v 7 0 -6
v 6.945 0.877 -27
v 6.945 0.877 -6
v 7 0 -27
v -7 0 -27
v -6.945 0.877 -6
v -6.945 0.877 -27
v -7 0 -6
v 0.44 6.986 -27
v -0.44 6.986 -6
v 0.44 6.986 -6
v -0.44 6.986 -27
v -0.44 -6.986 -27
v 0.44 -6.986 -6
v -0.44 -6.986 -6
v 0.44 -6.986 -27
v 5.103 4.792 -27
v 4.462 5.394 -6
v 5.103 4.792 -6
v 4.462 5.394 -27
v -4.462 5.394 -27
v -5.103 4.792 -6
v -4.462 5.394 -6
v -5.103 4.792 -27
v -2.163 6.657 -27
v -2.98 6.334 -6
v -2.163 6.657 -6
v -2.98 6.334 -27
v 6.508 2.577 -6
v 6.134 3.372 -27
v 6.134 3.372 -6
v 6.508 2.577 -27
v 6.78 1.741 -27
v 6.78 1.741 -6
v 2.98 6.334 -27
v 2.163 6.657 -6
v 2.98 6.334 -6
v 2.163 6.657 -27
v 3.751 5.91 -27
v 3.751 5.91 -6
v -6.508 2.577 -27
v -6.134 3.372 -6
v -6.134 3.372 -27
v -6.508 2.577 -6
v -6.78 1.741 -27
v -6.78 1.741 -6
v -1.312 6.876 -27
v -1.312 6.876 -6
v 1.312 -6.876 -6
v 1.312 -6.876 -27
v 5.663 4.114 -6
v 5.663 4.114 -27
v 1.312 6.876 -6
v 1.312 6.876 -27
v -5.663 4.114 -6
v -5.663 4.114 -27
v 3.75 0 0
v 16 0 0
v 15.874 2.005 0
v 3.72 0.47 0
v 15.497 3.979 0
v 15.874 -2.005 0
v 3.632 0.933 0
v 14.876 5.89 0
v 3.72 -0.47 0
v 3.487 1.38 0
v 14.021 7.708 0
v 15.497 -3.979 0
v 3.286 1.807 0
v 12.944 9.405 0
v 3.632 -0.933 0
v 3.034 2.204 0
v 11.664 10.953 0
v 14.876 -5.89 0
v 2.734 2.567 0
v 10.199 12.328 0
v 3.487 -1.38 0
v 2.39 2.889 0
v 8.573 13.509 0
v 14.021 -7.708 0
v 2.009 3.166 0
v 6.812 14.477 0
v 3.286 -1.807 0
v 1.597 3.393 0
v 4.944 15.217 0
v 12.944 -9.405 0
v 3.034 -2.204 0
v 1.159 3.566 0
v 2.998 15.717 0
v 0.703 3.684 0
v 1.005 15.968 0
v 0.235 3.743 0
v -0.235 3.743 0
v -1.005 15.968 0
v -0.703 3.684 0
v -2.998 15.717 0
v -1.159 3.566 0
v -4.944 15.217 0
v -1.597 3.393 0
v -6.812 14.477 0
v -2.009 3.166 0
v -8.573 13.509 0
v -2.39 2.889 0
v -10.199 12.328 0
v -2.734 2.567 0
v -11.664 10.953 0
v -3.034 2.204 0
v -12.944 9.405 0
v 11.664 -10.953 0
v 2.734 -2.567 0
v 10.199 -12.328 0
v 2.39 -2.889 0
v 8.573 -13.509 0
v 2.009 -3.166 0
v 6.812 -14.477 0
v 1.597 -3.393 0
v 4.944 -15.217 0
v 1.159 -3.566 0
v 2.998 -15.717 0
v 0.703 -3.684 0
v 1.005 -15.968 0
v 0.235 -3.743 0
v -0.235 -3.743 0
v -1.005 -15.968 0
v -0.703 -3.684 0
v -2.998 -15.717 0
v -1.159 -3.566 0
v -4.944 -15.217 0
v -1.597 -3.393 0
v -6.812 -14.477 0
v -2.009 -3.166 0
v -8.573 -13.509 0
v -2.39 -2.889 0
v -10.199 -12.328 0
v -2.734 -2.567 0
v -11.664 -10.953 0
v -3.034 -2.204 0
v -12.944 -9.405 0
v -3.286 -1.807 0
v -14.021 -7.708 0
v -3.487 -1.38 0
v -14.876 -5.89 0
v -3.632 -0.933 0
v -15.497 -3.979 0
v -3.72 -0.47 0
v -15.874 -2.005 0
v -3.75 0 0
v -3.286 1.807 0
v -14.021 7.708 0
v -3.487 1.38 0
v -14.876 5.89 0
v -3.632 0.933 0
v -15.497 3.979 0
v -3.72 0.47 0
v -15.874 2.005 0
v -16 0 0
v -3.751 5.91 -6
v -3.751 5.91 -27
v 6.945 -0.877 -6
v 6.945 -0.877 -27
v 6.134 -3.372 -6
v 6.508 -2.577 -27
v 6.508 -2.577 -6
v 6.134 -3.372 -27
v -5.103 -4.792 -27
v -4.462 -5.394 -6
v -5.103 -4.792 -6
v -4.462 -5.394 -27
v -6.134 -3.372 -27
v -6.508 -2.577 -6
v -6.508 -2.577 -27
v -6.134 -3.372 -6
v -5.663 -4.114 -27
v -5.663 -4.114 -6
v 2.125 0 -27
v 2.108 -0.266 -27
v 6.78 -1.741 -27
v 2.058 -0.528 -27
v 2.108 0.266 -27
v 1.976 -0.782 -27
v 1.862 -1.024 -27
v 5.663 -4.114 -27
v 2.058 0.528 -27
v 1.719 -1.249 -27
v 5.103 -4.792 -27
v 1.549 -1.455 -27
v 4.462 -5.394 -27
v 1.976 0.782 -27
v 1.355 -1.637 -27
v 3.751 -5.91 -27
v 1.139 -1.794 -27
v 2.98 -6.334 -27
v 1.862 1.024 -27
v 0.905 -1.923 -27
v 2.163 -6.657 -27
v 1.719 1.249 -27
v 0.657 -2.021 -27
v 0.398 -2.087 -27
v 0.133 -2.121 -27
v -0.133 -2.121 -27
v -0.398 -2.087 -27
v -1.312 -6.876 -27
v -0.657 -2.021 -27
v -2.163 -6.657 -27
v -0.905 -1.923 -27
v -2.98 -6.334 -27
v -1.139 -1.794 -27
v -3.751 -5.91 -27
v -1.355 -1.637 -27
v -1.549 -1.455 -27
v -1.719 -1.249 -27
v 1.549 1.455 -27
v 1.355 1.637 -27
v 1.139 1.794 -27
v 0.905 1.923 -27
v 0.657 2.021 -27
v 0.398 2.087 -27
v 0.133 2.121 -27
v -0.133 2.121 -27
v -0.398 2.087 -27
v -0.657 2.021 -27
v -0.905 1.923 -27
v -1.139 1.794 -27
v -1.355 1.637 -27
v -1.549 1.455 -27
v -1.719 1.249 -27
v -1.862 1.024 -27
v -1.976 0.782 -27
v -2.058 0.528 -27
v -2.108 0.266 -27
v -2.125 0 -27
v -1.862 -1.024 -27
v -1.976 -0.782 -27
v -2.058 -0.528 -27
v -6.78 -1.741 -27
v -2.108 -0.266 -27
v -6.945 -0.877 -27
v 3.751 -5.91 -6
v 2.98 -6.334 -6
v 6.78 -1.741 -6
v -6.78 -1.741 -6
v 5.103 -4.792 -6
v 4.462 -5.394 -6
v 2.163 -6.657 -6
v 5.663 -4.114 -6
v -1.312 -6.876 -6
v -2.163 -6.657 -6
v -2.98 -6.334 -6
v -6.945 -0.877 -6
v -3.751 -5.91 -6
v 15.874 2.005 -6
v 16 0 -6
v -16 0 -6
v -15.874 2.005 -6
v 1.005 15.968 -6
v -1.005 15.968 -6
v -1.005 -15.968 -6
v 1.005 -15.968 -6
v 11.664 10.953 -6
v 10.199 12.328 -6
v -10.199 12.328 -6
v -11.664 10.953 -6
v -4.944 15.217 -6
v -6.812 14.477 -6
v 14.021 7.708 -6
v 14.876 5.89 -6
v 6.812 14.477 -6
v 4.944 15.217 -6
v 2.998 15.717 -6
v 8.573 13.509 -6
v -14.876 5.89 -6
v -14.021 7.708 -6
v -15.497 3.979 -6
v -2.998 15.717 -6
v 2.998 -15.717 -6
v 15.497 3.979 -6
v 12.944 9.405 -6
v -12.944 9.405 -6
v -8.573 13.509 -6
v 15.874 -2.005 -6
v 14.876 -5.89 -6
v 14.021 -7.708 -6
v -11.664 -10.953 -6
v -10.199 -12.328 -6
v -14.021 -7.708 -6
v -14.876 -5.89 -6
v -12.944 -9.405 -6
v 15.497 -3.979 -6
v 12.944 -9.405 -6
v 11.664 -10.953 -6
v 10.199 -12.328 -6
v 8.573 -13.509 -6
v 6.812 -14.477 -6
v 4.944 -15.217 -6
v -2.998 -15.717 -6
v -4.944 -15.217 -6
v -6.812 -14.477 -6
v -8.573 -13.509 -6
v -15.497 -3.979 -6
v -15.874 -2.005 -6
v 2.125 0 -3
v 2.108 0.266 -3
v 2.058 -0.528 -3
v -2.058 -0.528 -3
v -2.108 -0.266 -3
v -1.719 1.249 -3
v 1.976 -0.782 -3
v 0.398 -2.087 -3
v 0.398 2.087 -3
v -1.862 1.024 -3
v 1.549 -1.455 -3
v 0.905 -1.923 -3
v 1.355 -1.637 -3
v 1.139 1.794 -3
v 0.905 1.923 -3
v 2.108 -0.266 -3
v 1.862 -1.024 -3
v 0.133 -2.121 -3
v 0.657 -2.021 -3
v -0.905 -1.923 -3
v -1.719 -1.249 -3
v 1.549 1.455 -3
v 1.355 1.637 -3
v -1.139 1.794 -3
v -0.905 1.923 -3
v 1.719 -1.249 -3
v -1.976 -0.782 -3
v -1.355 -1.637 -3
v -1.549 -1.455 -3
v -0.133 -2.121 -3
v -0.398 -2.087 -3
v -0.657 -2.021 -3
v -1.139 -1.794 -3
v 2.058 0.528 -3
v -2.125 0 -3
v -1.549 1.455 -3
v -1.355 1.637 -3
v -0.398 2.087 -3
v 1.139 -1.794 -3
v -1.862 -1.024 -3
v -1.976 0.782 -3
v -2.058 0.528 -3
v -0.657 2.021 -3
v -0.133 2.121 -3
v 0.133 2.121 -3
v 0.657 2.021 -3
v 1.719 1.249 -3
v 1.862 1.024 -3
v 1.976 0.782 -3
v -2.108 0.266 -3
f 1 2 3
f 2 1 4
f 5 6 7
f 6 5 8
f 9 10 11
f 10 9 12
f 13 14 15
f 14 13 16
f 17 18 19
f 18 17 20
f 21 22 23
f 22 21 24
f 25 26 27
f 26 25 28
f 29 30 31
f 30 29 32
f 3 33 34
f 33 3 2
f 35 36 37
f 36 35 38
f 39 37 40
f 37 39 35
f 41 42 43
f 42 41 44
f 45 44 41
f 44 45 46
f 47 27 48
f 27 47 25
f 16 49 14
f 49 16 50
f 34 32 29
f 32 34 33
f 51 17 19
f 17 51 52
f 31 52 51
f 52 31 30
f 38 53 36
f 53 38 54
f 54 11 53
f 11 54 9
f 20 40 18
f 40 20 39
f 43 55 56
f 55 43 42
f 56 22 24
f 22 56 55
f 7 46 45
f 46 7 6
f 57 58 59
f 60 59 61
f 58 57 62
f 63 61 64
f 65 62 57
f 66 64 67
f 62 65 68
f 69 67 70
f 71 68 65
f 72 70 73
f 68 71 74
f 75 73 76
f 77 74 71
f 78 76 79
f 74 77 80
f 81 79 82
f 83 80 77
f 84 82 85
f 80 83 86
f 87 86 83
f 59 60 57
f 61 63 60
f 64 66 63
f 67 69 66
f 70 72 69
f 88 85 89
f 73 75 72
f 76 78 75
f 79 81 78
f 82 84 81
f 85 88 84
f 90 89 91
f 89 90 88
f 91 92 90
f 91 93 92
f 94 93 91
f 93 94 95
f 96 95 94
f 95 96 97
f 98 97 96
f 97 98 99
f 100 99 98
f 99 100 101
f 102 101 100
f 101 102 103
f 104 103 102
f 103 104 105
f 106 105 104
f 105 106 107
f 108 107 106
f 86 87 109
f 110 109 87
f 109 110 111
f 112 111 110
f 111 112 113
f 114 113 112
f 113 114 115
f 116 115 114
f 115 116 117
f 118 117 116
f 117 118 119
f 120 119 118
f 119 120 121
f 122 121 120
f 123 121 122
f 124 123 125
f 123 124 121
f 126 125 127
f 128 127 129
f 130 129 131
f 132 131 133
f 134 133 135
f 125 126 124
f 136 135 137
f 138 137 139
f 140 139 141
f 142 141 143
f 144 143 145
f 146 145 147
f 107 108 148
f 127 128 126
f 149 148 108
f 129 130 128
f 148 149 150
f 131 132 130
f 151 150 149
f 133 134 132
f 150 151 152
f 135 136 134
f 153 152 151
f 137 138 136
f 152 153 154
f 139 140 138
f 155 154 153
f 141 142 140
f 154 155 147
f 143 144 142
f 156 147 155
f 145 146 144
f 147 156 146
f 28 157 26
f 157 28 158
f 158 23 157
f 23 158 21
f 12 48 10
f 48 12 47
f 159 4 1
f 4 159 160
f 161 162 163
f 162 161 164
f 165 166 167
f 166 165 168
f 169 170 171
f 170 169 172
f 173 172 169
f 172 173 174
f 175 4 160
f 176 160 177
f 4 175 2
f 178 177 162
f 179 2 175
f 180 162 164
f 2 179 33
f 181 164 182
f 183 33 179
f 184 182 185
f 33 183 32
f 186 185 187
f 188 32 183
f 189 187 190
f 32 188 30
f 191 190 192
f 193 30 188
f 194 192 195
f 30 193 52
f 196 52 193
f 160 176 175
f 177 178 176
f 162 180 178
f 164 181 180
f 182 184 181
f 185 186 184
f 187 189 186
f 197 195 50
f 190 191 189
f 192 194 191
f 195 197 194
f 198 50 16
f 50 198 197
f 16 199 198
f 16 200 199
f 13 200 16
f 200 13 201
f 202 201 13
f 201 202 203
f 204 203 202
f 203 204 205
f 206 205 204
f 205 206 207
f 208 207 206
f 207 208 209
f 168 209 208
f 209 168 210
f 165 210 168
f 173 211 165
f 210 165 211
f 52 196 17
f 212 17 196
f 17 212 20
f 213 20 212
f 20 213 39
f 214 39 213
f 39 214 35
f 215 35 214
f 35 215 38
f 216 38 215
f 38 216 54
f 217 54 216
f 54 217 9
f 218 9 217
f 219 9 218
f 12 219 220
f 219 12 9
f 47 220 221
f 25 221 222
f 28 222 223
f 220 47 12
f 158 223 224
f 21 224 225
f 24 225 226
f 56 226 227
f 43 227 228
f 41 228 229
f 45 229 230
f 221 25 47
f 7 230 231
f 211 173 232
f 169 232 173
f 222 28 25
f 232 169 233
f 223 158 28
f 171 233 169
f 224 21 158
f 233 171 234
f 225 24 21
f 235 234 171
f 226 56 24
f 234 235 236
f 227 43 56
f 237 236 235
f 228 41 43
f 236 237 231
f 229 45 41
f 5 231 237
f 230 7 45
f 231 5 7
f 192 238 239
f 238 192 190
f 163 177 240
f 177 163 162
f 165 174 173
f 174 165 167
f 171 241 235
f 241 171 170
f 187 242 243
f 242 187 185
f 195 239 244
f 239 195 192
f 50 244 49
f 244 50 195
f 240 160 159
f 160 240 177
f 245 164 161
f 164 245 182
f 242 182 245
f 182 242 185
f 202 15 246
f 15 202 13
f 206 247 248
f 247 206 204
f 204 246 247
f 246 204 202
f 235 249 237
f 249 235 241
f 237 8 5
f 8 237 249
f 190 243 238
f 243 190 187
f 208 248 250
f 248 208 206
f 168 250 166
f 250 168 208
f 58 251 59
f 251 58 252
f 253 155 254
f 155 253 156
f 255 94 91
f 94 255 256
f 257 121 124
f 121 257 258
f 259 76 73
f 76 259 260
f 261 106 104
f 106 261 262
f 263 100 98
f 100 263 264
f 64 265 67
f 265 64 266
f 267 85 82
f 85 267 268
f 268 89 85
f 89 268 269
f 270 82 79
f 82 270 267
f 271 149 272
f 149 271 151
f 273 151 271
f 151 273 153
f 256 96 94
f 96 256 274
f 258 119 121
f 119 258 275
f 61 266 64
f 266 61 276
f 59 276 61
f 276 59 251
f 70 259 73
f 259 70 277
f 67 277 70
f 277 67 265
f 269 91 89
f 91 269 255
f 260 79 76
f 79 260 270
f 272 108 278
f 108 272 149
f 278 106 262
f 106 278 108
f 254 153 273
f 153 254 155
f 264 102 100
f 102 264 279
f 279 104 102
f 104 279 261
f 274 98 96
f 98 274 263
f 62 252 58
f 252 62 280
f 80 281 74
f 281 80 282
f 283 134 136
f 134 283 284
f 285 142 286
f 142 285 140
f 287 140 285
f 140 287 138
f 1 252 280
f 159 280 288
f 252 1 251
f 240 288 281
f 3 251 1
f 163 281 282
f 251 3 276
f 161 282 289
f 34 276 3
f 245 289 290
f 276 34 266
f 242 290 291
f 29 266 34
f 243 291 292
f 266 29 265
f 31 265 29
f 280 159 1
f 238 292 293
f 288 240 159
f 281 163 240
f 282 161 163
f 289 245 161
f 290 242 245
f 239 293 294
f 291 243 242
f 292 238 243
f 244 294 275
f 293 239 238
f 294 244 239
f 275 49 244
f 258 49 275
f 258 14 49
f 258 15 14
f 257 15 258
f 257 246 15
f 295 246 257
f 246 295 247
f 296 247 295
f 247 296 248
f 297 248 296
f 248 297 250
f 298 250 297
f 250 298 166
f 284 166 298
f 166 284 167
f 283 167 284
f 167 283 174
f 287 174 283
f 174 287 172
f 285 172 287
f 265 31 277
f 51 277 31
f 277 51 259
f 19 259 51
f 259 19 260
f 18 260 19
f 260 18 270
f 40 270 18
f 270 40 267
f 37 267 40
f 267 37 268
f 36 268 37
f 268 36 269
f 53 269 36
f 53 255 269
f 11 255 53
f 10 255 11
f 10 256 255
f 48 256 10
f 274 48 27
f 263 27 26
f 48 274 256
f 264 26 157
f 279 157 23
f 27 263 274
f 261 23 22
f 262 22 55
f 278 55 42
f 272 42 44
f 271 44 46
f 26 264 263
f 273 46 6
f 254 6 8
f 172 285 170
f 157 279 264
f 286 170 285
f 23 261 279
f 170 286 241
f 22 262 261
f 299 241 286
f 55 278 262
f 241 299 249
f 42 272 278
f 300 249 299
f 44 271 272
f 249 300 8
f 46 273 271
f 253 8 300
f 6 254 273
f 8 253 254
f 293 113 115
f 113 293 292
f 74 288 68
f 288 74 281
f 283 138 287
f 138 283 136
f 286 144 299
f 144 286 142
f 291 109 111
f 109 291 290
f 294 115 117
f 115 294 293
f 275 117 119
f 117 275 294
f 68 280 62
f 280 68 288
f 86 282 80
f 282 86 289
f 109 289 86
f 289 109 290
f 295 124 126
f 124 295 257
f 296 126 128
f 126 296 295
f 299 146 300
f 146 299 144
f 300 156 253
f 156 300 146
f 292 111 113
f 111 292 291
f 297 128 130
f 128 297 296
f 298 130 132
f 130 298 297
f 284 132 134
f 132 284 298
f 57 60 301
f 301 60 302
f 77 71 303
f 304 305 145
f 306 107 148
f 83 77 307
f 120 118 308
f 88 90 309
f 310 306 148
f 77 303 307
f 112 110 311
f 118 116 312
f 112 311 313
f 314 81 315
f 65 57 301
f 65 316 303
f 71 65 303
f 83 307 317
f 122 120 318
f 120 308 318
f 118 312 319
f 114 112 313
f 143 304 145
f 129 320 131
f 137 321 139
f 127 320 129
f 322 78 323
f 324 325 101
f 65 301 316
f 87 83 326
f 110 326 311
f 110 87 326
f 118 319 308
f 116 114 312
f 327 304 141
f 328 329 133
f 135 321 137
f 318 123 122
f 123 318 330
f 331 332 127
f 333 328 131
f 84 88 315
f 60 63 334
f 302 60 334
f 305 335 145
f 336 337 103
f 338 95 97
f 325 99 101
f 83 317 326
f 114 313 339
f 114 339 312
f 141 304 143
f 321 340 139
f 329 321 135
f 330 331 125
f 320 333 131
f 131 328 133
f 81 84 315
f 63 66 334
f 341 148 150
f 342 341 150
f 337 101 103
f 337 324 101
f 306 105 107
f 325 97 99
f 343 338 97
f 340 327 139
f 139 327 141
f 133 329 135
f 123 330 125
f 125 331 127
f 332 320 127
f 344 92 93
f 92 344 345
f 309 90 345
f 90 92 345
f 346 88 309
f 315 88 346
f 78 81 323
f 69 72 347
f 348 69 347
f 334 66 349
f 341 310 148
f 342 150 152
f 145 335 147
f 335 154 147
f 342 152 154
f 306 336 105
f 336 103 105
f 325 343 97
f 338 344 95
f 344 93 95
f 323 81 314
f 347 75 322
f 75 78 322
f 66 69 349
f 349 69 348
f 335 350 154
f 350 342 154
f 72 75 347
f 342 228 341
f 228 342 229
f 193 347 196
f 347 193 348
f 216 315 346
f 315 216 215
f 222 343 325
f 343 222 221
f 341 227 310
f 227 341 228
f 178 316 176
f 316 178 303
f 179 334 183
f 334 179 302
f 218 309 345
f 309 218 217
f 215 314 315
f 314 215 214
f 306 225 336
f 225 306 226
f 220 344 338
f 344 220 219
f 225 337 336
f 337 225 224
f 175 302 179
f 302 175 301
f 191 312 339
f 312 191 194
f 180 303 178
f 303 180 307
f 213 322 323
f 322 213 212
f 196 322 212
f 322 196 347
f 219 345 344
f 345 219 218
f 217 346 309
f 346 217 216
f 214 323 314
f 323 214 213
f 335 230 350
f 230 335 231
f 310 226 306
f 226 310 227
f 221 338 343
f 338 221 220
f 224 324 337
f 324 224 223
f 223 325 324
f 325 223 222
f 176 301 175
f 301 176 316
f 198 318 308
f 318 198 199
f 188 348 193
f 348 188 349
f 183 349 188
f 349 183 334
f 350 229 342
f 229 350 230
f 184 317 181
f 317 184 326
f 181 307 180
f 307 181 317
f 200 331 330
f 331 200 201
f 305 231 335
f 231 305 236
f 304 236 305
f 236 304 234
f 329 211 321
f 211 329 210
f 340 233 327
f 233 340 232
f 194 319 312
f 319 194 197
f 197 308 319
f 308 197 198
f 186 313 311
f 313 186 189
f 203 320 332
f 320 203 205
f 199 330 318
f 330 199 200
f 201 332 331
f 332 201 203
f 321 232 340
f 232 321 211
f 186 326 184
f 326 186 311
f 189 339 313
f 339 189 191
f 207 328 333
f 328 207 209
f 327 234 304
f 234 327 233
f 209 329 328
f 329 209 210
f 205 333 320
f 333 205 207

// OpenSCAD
$fn = 50;


difference() {
	union() {
		translate(v = [0, 0, -27.0000000000]) {
			cylinder(h = 27, r = 7.0000000000);
		}
		translate(v = [0, 0, -6.0000000000]) {
			cylinder(h = 6, r = 16.0000000000);
		}
	}
	union() {
		translate(v = [0, 0, 0]) {
			rotate(a = [0, 0, 0]) {
				difference() {
					union() {
						#translate(v = [0, 0, -27.0000000000]) {
							cylinder(h = 27, r = 2.0000000000);
						}
						#translate(v = [0, 0, -3]) {
							cylinder(h = 3, r1 = 2.1250000000, r2 = 3.7500000000);
						}
						#translate(v = [0, 0, -27.0000000000]) {
							cylinder(h = 27, r = 2.1250000000);
						}
						#translate(v = [0, 0, -27.0000000000]) {
							cylinder(h = 27, r = 2.0000000000);
						}
					}
					union();
				}
			}
		}
	}
}
